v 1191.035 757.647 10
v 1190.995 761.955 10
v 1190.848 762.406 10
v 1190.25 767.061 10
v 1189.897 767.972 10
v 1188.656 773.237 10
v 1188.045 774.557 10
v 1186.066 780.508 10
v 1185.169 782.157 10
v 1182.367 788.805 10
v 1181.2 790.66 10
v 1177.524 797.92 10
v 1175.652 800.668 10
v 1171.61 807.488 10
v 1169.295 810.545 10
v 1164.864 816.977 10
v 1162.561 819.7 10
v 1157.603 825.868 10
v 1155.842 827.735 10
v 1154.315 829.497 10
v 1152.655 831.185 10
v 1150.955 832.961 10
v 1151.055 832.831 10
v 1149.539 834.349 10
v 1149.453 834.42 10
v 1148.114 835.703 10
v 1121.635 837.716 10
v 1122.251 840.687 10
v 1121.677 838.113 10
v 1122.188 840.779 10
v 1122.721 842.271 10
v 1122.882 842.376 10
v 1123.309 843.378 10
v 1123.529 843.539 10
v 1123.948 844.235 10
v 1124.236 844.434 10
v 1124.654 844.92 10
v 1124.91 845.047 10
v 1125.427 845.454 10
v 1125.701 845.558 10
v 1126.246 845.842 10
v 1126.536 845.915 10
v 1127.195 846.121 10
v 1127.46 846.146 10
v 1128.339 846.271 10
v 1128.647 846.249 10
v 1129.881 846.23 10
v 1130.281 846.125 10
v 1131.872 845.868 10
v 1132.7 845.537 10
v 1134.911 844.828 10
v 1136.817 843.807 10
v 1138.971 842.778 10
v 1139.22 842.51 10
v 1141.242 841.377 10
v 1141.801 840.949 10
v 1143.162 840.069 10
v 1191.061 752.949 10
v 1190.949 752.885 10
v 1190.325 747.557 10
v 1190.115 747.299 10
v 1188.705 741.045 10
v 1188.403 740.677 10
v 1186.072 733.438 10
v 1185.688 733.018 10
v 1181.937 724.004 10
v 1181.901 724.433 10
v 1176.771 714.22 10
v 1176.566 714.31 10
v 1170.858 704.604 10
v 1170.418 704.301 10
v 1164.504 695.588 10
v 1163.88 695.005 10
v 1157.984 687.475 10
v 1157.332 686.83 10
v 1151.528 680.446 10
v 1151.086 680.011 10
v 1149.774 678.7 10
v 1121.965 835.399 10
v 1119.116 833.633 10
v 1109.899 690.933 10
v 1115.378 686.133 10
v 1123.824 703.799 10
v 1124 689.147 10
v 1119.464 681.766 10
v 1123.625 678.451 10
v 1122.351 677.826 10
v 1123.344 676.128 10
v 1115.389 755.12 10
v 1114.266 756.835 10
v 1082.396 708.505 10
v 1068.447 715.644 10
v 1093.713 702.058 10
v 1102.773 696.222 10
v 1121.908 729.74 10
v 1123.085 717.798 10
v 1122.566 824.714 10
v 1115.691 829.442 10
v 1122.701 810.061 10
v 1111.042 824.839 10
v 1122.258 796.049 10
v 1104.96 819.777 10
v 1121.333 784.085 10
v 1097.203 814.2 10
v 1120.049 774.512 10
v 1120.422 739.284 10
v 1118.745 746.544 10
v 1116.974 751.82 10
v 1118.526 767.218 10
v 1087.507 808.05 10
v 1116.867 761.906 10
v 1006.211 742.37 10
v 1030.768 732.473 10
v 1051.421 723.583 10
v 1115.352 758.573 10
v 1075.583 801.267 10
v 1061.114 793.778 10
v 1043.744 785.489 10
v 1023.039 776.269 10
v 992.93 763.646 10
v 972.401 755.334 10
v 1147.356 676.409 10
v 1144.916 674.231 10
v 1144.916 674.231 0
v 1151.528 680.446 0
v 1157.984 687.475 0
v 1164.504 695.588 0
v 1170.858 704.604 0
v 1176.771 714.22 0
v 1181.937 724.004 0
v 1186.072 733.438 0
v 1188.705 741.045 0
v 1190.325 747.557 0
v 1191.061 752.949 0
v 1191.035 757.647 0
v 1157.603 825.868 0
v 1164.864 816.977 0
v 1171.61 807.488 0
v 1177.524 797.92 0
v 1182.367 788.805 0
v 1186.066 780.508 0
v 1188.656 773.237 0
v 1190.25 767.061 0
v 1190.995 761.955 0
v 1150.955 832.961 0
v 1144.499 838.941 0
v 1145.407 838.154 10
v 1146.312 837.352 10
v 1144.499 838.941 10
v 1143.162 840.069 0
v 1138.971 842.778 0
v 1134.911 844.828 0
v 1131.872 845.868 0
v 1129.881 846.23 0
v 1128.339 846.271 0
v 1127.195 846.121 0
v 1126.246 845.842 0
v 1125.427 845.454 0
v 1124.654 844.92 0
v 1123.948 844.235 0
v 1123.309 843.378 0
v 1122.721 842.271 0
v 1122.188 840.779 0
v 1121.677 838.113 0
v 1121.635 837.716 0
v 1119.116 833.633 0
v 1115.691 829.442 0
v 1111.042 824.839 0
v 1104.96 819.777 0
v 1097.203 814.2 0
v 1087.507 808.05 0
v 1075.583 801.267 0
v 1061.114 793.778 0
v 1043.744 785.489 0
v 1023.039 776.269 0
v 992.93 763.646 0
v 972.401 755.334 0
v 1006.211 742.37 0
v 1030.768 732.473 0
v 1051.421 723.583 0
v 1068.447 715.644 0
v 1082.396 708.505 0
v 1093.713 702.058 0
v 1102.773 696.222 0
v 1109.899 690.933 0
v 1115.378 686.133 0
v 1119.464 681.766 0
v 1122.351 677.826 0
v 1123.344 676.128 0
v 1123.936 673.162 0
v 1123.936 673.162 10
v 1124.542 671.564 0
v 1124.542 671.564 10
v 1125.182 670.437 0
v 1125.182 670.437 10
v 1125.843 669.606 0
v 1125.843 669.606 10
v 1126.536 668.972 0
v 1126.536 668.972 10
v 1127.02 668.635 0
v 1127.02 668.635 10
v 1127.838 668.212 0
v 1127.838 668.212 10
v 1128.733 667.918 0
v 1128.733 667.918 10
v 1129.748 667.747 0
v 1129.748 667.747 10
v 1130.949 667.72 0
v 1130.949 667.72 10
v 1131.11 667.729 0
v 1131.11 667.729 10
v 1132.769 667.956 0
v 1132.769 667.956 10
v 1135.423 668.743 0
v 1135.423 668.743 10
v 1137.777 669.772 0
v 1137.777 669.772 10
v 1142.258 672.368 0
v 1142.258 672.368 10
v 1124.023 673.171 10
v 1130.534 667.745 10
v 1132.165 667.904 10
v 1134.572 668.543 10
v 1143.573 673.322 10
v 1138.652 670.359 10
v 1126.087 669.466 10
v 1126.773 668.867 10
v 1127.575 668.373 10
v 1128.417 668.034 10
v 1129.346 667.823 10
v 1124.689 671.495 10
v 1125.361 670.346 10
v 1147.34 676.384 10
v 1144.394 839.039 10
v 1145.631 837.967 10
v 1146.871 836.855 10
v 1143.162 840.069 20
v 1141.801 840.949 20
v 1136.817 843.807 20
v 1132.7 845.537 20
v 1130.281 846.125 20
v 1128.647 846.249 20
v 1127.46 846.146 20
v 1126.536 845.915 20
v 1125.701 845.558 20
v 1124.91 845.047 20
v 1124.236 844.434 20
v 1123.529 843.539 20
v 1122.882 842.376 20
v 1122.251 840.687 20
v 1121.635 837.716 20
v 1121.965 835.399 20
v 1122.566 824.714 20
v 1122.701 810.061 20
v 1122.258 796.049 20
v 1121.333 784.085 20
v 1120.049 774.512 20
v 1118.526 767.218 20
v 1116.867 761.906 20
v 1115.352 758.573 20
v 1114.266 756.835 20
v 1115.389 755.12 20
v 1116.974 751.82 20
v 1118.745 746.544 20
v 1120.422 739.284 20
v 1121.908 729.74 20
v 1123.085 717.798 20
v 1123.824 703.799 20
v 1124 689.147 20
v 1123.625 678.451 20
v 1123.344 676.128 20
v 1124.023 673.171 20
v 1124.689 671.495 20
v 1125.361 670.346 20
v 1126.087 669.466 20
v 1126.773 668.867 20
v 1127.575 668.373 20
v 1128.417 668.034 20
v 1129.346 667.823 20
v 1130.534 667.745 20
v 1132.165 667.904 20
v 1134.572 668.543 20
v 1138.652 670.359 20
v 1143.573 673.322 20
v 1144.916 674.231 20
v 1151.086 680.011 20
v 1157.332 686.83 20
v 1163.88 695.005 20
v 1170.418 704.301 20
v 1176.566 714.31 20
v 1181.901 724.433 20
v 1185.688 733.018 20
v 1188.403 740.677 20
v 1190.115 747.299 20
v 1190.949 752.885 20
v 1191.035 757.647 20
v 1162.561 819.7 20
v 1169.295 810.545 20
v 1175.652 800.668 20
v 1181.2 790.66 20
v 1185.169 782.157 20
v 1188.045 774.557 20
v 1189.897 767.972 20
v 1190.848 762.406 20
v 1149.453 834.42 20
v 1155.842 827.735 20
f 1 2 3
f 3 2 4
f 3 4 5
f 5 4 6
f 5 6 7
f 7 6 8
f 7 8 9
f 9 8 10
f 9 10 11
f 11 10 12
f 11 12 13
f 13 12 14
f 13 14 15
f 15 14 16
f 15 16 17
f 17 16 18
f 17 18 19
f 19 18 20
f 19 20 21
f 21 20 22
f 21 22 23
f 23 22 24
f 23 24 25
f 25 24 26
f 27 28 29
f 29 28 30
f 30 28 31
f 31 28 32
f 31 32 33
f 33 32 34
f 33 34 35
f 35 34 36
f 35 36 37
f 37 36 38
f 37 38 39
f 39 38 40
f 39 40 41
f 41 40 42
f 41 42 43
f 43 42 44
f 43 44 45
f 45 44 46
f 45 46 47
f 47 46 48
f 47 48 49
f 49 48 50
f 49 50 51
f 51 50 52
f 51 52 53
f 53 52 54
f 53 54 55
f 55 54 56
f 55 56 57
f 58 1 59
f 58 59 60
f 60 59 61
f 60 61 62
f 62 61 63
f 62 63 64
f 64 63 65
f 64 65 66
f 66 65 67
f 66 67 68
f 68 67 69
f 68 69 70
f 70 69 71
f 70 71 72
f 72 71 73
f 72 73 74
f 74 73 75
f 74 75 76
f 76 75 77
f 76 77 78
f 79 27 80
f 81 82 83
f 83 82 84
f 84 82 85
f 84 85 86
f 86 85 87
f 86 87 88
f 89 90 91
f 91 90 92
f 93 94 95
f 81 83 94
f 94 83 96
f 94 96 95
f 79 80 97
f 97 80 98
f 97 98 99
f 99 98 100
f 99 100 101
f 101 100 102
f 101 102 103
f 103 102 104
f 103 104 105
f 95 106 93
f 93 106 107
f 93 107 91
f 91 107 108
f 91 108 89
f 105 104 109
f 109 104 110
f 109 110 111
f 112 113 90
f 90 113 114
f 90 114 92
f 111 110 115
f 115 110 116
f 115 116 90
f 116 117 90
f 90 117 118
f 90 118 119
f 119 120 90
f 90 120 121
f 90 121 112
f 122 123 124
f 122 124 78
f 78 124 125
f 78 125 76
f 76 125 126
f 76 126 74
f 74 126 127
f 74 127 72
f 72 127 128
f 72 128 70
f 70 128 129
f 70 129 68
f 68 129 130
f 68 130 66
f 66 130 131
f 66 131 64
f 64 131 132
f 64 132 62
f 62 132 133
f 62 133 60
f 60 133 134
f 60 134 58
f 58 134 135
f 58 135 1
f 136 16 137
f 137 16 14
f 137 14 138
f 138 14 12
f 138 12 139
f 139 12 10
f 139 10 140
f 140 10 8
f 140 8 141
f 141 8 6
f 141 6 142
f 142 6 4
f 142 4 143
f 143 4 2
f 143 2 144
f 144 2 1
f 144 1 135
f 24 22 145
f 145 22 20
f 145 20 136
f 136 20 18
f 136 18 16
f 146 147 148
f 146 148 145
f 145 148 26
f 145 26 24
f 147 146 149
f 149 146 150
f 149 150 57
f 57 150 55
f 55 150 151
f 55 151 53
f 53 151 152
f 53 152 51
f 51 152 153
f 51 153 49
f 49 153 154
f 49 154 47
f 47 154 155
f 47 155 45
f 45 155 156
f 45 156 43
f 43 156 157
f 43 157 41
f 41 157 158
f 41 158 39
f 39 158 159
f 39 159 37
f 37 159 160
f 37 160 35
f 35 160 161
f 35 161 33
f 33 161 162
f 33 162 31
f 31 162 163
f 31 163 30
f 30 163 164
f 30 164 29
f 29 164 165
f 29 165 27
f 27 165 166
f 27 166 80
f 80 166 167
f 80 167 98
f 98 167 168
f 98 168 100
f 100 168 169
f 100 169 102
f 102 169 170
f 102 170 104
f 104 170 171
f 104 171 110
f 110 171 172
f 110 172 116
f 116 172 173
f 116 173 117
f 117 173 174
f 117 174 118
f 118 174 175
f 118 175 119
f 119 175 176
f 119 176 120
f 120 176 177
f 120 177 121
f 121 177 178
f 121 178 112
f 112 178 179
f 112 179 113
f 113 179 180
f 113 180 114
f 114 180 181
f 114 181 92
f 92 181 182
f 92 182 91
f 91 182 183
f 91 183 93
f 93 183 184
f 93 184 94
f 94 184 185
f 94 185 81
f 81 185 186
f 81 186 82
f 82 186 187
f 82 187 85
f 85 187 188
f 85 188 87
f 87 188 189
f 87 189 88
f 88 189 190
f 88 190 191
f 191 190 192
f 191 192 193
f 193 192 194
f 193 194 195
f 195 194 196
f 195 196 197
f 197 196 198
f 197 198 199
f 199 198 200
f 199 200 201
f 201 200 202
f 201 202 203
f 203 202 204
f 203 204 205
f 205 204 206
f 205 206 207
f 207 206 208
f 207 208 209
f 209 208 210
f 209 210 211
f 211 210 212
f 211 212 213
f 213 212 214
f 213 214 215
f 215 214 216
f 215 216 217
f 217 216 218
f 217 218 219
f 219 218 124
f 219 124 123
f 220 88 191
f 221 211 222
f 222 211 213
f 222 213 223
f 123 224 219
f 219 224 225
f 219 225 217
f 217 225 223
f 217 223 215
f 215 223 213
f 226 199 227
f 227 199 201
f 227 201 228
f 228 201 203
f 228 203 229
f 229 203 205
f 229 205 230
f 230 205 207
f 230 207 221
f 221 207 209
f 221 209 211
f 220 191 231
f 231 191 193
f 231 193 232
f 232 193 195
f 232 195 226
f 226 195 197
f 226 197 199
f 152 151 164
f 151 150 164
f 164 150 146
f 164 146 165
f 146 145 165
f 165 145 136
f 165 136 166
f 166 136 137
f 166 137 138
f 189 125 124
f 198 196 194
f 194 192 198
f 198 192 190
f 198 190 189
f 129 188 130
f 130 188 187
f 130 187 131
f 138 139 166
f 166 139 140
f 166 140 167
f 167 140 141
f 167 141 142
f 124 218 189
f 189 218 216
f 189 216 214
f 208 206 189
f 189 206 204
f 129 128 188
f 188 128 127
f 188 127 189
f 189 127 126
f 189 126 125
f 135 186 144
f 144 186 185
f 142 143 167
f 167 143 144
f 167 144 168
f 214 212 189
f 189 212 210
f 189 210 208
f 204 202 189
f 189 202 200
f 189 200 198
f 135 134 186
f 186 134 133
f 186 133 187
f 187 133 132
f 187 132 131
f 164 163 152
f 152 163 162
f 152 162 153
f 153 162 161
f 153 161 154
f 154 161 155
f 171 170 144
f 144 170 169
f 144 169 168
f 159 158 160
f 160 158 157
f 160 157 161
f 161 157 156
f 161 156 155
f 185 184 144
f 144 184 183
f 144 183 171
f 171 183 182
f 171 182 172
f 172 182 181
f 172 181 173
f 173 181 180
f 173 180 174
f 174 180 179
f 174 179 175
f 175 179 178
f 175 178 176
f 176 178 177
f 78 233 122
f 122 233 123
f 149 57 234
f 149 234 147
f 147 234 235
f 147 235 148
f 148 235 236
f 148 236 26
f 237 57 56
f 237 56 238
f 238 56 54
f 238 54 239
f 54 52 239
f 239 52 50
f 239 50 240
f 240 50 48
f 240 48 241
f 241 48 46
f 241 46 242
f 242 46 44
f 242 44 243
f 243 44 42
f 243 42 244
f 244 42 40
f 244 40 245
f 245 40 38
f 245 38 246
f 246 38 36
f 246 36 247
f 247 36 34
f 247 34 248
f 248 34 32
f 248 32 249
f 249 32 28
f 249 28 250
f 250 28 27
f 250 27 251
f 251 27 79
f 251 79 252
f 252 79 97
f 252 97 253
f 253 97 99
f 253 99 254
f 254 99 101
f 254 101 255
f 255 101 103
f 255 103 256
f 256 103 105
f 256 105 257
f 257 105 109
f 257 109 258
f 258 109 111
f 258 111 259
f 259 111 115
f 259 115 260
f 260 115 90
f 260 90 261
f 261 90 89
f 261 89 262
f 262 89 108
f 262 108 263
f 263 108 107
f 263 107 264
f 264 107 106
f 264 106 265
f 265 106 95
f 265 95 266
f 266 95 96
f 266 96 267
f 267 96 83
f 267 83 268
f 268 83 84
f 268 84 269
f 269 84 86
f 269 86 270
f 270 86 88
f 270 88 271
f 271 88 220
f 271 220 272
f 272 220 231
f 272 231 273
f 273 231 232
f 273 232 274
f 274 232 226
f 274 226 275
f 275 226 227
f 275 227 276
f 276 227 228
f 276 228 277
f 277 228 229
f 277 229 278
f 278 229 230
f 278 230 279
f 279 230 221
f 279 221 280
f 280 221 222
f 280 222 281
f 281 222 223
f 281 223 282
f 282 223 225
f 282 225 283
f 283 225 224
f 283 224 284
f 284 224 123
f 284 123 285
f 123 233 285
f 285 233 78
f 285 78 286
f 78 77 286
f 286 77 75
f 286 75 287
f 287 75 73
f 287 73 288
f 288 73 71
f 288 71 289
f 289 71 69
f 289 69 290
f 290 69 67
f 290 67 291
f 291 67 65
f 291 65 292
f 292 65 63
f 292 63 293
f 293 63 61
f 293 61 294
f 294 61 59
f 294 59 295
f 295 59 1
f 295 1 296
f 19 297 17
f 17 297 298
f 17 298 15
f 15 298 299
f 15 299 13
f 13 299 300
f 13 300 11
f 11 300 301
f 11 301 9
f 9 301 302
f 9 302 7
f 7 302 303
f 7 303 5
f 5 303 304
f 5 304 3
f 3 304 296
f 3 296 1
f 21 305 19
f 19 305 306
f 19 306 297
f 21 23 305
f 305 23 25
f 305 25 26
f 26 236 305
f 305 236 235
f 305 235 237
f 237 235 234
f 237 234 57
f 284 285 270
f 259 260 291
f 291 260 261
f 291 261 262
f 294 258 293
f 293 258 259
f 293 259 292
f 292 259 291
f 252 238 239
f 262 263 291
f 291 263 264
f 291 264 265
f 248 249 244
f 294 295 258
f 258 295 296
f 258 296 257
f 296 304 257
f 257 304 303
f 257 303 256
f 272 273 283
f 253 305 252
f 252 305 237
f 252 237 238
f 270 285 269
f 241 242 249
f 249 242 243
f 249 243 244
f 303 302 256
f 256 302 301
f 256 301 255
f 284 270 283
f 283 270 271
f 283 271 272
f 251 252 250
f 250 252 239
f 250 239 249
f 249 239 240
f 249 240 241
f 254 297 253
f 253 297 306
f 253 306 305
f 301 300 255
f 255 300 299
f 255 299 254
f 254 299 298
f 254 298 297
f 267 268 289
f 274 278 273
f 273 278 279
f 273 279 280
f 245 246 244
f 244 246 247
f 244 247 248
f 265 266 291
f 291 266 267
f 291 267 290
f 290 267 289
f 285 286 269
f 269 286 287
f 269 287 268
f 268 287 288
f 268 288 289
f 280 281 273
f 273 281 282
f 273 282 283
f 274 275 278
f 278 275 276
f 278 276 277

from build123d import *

# Parameters (mm, degrees)
BOSS_EXTRUDE1_DEPTH = 10
BOSS_EXTRUDE2_DEPTH = 10


with BuildPart() as part:
    # Sketch3 → Boss-Extrude1 (new body)
    with BuildSketch(Plane.XY):
        with BuildLine():
            add(Edge.make_bspline(
                [(1191.034746988, 757.646716361), (1192.501595784, 777.278635739), (1169.152381791, 818.53401585), (1143.161995097, 840.068602242)],
                knots=[0, 0, 0, 0, 1, 1, 1, 1], degree=3))
            add(Edge.make_bspline(
                [(1143.161995097, 840.068602242), (1137.274907156, 844.245616795), (1123.106997409, 852.788575192), (1121.635027153, 837.715530595)],
                knots=[0, 0, 0, 0, 1, 1, 1, 1], degree=3))
            add(Edge.make_bspline(
                [(1121.635027153, 837.715530595), (1107.849951403, 810.780397707), (1034.181098513, 780.162460067), (972.400775185, 755.334488692)],
                knots=[0, 0, 0, 0, 1, 1, 1, 1], degree=3))
            add(Edge.make_bspline(
                [(1123.343942812, 676.128061097), (1108.992293291, 702.765625798), (1034.692372372, 731.818676288), (972.400775185, 755.334488692)],
                knots=[0, 0, 0, 0, 1, 1, 1, 1], degree=3))
            add(Edge.make_bspline(
                [(1144.915861455, 674.230794361), (1139.118430881, 669.930206757), (1125.134366982, 661.089518909), (1123.343942812, 676.128061097)],
                knots=[0, 0, 0, 0, 1, 1, 1, 1], degree=3))
            add(Edge.make_bspline(
                [(1191.034746988, 757.646716361), (1192.916467494, 738.050210759), (1170.444995161, 696.310240546), (1144.915861455, 674.230794361)],
                knots=[0, 0, 0, 0, 1, 1, 1, 1], degree=3))
        make_face()
    extrude(amount=BOSS_EXTRUDE1_DEPTH)

    # Sketch4 → Boss-Extrude2 (add)
    with BuildSketch(Plane.XY.offset(10)):
        with BuildLine():
            add(Edge.make_bspline(
                [(1121.635027153, 837.715530595), (1122.994319161, 832.182423063), (1124.969404488, 771.685399193), (1114.266247799, 756.83482859)],
                knots=[0, 0, 0, 0, 1, 1, 1, 1], degree=3))
            add(Edge.make_bspline(
                [(1123.343942812, 676.128061097), (1124.585909874, 681.688679007), (1125.281088513, 742.213943037), (1114.266247799, 756.83482859)],
                knots=[0, 0, 0, 0, 1, 1, 1, 1], degree=3))
            add(Edge.make_bspline(
                [(1123.343942812, 676.128061097), (1125.072838739, 665.157090414), (1132.139531171, 665.40962684), (1144.915861455, 674.230794361)],
                knots=[0, 0, 0, 0, 1, 1, 1, 1], degree=3))
            add(Edge.make_bspline(
                [(1144.915861455, 674.230794361), (1167.477950932, 693.53565223), (1192.361285284, 735.724019033), (1191.034746988, 757.646716361)],
                knots=[0, 0, 0, 0, 1, 1, 1, 1], degree=3))
            add(Edge.make_bspline(
                [(1143.161995097, 840.068602242), (1166.127320819, 821.245232901), (1191.897340609, 779.592565495), (1191.034746988, 757.646716361)],
                knots=[0, 0, 0, 0, 1, 1, 1, 1], degree=3))
            add(Edge.make_bspline(
                [(1121.635027153, 837.715530595), (1123.131508896, 848.720612205), (1130.201961672, 848.617587304), (1143.161995097, 840.068602242)],
                knots=[0, 0, 0, 0, 1, 1, 1, 1], degree=3))
        make_face()
    extrude(amount=BOSS_EXTRUDE2_DEPTH)


solid = part.part
